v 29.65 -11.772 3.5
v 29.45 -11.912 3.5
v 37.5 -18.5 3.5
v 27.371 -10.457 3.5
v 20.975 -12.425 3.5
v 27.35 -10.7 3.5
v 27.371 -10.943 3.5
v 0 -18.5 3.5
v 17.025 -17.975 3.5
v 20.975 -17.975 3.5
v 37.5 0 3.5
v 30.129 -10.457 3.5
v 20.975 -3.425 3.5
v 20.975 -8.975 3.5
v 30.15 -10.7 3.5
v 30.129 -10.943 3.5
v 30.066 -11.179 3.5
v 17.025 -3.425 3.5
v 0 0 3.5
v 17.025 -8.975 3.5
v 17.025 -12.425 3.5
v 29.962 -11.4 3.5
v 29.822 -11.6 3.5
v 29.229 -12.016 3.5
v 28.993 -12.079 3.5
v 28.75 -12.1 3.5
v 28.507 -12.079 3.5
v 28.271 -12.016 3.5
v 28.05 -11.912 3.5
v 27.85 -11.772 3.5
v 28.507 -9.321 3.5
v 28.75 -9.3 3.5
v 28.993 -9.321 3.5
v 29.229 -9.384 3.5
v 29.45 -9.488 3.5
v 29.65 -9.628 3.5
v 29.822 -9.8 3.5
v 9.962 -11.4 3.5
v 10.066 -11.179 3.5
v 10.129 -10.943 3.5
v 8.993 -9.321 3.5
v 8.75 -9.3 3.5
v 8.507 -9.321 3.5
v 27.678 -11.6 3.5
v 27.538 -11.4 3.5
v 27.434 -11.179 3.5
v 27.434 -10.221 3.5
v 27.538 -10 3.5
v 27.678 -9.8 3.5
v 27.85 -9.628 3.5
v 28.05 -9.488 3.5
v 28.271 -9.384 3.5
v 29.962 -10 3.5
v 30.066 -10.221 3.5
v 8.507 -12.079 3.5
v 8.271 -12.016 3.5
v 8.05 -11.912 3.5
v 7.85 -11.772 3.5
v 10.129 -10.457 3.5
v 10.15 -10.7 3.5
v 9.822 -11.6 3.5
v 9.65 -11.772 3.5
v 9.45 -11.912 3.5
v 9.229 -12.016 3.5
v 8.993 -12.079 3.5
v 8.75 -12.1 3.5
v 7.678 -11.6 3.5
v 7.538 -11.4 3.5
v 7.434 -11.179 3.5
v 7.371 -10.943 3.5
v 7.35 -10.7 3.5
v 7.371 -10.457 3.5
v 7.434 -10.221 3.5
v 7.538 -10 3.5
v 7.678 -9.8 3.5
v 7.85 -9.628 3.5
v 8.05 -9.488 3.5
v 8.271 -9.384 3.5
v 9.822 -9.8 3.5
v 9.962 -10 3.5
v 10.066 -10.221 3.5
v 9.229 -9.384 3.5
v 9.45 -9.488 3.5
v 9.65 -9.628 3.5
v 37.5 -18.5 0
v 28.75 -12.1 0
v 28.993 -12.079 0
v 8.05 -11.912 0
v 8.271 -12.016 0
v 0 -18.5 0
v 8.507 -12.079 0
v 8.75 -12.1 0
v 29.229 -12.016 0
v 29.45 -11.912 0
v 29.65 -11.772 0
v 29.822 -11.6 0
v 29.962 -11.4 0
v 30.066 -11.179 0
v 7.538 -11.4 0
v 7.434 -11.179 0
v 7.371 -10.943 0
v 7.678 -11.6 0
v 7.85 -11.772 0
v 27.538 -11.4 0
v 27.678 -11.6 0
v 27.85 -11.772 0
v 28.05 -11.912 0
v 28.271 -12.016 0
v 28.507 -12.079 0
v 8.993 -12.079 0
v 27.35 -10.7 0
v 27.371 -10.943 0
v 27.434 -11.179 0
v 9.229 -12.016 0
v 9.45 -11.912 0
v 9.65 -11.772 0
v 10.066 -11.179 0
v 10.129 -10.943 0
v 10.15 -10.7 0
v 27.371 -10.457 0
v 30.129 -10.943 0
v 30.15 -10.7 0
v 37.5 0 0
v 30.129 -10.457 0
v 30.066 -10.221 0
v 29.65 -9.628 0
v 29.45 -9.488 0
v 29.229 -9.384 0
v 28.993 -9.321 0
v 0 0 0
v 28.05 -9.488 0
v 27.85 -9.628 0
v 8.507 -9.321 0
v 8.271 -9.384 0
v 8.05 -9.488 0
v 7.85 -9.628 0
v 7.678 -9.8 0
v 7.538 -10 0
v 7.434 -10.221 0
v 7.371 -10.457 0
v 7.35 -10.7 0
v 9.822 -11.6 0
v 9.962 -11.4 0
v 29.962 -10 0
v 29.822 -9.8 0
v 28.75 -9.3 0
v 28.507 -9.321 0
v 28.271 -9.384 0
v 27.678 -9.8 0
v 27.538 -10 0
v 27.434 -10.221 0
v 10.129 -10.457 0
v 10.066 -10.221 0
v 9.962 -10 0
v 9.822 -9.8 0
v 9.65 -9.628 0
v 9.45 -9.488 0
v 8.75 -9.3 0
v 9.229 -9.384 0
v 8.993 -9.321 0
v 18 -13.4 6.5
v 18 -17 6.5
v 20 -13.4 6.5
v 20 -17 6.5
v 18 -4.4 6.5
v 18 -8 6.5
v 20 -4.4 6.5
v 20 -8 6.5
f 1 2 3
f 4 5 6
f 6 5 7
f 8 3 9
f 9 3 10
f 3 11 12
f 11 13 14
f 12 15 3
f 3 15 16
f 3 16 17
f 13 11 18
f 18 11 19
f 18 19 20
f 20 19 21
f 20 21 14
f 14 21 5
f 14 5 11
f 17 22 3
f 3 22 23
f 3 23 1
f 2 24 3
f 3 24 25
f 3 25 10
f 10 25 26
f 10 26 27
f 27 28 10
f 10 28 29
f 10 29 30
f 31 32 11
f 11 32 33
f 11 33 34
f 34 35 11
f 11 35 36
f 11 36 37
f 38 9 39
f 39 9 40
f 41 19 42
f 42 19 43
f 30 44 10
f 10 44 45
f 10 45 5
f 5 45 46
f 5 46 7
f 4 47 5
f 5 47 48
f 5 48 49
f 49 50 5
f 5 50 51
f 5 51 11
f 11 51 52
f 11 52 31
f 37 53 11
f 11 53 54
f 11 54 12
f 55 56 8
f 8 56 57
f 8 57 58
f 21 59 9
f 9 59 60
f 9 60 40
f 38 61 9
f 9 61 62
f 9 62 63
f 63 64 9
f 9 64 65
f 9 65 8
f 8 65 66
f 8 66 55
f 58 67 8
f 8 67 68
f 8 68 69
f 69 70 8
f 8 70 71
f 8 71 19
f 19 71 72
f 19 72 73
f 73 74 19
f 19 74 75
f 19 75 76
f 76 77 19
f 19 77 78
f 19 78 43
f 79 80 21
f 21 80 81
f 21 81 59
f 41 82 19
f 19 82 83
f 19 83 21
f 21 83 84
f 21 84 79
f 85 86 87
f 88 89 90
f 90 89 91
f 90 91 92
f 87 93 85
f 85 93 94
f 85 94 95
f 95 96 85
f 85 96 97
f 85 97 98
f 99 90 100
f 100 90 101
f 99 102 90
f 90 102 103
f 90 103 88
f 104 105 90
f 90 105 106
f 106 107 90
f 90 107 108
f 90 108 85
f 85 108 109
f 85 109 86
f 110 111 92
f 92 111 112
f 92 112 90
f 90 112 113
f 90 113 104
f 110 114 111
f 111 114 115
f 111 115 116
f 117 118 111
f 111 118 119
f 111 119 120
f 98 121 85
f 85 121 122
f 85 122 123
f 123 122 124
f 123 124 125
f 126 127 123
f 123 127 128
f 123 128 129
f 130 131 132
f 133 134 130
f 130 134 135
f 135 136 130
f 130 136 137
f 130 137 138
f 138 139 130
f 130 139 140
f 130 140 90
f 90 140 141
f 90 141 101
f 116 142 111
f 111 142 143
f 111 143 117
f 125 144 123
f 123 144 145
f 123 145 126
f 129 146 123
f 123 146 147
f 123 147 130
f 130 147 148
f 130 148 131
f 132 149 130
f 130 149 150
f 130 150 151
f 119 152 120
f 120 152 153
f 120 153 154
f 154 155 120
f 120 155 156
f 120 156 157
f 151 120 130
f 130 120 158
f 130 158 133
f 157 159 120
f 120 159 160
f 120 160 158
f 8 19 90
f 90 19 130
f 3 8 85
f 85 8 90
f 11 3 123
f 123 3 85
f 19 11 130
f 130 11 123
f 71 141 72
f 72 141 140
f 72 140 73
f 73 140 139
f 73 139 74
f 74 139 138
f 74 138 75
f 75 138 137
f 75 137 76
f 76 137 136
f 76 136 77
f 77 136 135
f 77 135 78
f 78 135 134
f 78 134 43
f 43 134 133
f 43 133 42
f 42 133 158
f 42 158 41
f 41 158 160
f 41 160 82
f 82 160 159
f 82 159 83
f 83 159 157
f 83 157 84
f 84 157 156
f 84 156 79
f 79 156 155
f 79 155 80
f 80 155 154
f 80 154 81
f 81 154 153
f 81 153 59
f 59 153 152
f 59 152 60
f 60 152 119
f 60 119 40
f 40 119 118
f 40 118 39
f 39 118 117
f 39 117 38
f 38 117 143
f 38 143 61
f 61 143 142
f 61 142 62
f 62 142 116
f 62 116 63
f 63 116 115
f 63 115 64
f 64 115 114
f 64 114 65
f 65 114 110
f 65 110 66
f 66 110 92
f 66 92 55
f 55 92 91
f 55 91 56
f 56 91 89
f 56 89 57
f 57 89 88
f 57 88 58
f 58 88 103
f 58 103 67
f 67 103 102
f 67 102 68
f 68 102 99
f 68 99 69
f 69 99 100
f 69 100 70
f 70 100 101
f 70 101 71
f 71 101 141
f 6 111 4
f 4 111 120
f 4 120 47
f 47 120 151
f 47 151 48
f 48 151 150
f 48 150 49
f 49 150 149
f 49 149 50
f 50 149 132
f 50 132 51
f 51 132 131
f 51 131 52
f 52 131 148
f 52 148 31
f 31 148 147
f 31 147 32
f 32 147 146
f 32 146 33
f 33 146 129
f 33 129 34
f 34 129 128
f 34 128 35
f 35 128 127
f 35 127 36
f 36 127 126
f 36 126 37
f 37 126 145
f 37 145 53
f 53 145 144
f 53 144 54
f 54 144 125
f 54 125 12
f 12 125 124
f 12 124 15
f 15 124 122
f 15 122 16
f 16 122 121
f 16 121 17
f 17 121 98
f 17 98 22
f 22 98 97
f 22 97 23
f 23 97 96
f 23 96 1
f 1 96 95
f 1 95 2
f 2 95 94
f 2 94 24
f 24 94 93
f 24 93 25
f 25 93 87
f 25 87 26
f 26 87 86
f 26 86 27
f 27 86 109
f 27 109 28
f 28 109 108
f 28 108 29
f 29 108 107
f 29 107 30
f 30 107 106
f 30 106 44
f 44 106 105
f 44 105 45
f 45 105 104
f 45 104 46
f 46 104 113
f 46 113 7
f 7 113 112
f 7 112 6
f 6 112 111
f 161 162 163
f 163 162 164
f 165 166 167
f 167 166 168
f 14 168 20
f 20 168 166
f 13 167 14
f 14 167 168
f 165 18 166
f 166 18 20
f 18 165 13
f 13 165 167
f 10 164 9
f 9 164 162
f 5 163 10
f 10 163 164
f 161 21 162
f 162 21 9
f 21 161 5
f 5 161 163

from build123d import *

# Parameters (mm, degrees)
SKETCH_1_W       = 37.5
SKETCH_1_H       = 18.5
SKETCH_1_R       = 1.4
EXTRUDE_1_DEPTH  = 3.5
SKETCH_2_W       = 4
SKETCH_2_H       = 5.6
EXTRUDE_2_DEPTH  = 3
CHAMFER_1_SIZE   = 3.077683537
CHAMFER_1_SIZE_2 = 1


with BuildPart() as part:
    # Эскиз1 → Бобышка-Вытянуть1 (new body)
    with BuildSketch(Plane.XY):
        with Locations((18.75, -9.25)):
            Rectangle(SKETCH_1_W, SKETCH_1_H)
        with Locations((8.75, -10.7)):
            Circle(SKETCH_1_R, mode=Mode.SUBTRACT)
        with Locations((28.75, -10.7)):
            Circle(SKETCH_1_R, mode=Mode.SUBTRACT)
    extrude(amount=EXTRUDE_1_DEPTH)

    # Эскиз2 → Бобышка-Вытянуть2 (add)
    with BuildSketch(Plane.XY.offset(3.5)):
        with Locations((19, -15.2)):
            Rectangle(SKETCH_2_W, SKETCH_2_H)
        with Locations((19, -6.2)):
            Rectangle(SKETCH_2_W, SKETCH_2_H)
    extrude(amount=EXTRUDE_2_DEPTH)

    # Фаска1
    # the kernel refuses this chamfer: 3.077683537, 1 mm, written as the material it takes off along each edge
    with BuildSketch(Plane(origin=(9.012519835, -3.4, 6.5), x_dir=(0, 0.011906840413017355, -0.9999291110630687), z_dir=(1, 0, 0))) as chamfer_1_piece_1_section:
        Polygon((CHAMFER_1_SIZE * 0.99992911112, -CHAMFER_1_SIZE * 0.0119068404137), (-CHAMFER_1_SIZE_2 * 0.011906840413, -CHAMFER_1_SIZE_2 * 0.999929111063), (0, 0), align=None)
    chamfer_1_piece_1 = extrude(amount=19.97496033, mode=Mode.PRIVATE)
    chamfer_1_piece_1 = split(chamfer_1_piece_1, bisect_by=Plane(origin=(19, -3.706604024, 3.5), z_dir=(0, 0, 1)), keep=Keep.TOP, mode=Mode.PRIVATE)
    add(chamfer_1_piece_1, mode=Mode.SUBTRACT)
    with BuildSketch(Plane(origin=(21, 4.587480165, 6.5), x_dir=(0.011906840413017495, 0, -0.9999291110630687), z_dir=(0, -1, 0))) as chamfer_1_piece_2_section:
        Polygon((CHAMFER_1_SIZE * 0.99992911112, -CHAMFER_1_SIZE * 0.0119068404137), (-CHAMFER_1_SIZE_2 * 0.011906840413, -CHAMFER_1_SIZE_2 * 0.999929111063), (0, 0), align=None)
    chamfer_1_piece_2 = extrude(amount=21.57496033, mode=Mode.PRIVATE)
    chamfer_1_piece_2 = split(chamfer_1_piece_2, bisect_by=Plane(origin=(20.693395976, -6.2, 3.5), z_dir=(0, 0, 1)), keep=Keep.TOP, mode=Mode.PRIVATE)
    add(chamfer_1_piece_2, mode=Mode.SUBTRACT)
    with BuildSketch(Plane(origin=(28.987480165, -9, 6.5), x_dir=(0, -0.011906840413017495, -0.9999291110630687), z_dir=(-1, 0, 0))) as chamfer_1_piece_3_section:
        Polygon((CHAMFER_1_SIZE * 0.99992911112, -CHAMFER_1_SIZE * 0.0119068404137), (-CHAMFER_1_SIZE_2 * 0.011906840413, -CHAMFER_1_SIZE_2 * 0.999929111063), (0, 0), align=None)
    chamfer_1_piece_3 = extrude(amount=19.97496033, mode=Mode.PRIVATE)
    chamfer_1_piece_3 = split(chamfer_1_piece_3, bisect_by=Plane(origin=(19, -8.693395976, 3.5), z_dir=(0, 0, 1)), keep=Keep.TOP, mode=Mode.PRIVATE)
    add(chamfer_1_piece_3, mode=Mode.SUBTRACT)
    with BuildSketch(Plane(origin=(17, -16.987480165, 6.5), x_dir=(-0.011906840413017495, 0, -0.9999291110630687), z_dir=(0, 1, 0))) as chamfer_1_piece_4_section:
        Polygon((CHAMFER_1_SIZE * 0.99992911112, -CHAMFER_1_SIZE * 0.0119068404137), (-CHAMFER_1_SIZE_2 * 0.011906840413, -CHAMFER_1_SIZE_2 * 0.999929111063), (0, 0), align=None)
    chamfer_1_piece_4 = extrude(amount=21.57496033, mode=Mode.PRIVATE)
    chamfer_1_piece_4 = split(chamfer_1_piece_4, bisect_by=Plane(origin=(17.306604024, -6.2, 3.5), z_dir=(0, 0, 1)), keep=Keep.TOP, mode=Mode.PRIVATE)
    add(chamfer_1_piece_4, mode=Mode.SUBTRACT)
    with BuildSketch(Plane(origin=(9.012519835, -12.4, 6.5), x_dir=(0, 0.011906840413017495, -0.9999291110630687), z_dir=(1, 0, 0))) as chamfer_1_piece_5_section:
        Polygon((CHAMFER_1_SIZE * 0.99992911112, -CHAMFER_1_SIZE * 0.0119068404137), (-CHAMFER_1_SIZE_2 * 0.011906840413, -CHAMFER_1_SIZE_2 * 0.999929111063), (0, 0), align=None)
    chamfer_1_piece_5 = extrude(amount=19.97496033, mode=Mode.PRIVATE)
    chamfer_1_piece_5 = split(chamfer_1_piece_5, bisect_by=Plane(origin=(19, -12.706604024, 3.5), z_dir=(0, 0, 1)), keep=Keep.TOP, mode=Mode.PRIVATE)
    add(chamfer_1_piece_5, mode=Mode.SUBTRACT)
    with BuildSketch(Plane(origin=(21, -4.412519835, 6.5), x_dir=(0.011906840413017495, 0, -0.9999291110630687), z_dir=(0, -1, 0))) as chamfer_1_piece_6_section:
        Polygon((CHAMFER_1_SIZE * 0.99992911112, -CHAMFER_1_SIZE * 0.0119068404137), (-CHAMFER_1_SIZE_2 * 0.011906840413, -CHAMFER_1_SIZE_2 * 0.999929111063), (0, 0), align=None)
    chamfer_1_piece_6 = extrude(amount=21.57496033, mode=Mode.PRIVATE)
    chamfer_1_piece_6 = split(chamfer_1_piece_6, bisect_by=Plane(origin=(20.693395976, -15.2, 3.5), z_dir=(0, 0, 1)), keep=Keep.TOP, mode=Mode.PRIVATE)
    add(chamfer_1_piece_6, mode=Mode.SUBTRACT)
    with BuildSketch(Plane(origin=(28.987480165, -18, 6.5), x_dir=(0, -0.011906840413017495, -0.9999291110630687), z_dir=(-1, 0, 0))) as chamfer_1_piece_7_section:
        Polygon((CHAMFER_1_SIZE * 0.99992911112, -CHAMFER_1_SIZE * 0.0119068404137), (-CHAMFER_1_SIZE_2 * 0.011906840413, -CHAMFER_1_SIZE_2 * 0.999929111063), (0, 0), align=None)
    chamfer_1_piece_7 = extrude(amount=19.97496033, mode=Mode.PRIVATE)
    chamfer_1_piece_7 = split(chamfer_1_piece_7, bisect_by=Plane(origin=(19, -17.693395976, 3.5), z_dir=(0, 0, 1)), keep=Keep.TOP, mode=Mode.PRIVATE)
    add(chamfer_1_piece_7, mode=Mode.SUBTRACT)
    with BuildSketch(Plane(origin=(17, -25.987480165, 6.5), x_dir=(-0.011906840413017495, 0, -0.9999291110630687), z_dir=(0, 1, 0))) as chamfer_1_piece_8_section:
        Polygon((CHAMFER_1_SIZE * 0.99992911112, -CHAMFER_1_SIZE * 0.0119068404137), (-CHAMFER_1_SIZE_2 * 0.011906840413, -CHAMFER_1_SIZE_2 * 0.999929111063), (0, 0), align=None)
    chamfer_1_piece_8 = extrude(amount=21.57496033, mode=Mode.PRIVATE)
    chamfer_1_piece_8 = split(chamfer_1_piece_8, bisect_by=Plane(origin=(17.306604024, -15.2, 3.5), z_dir=(0, 0, 1)), keep=Keep.TOP, mode=Mode.PRIVATE)
    add(chamfer_1_piece_8, mode=Mode.SUBTRACT)


solid = part.part
